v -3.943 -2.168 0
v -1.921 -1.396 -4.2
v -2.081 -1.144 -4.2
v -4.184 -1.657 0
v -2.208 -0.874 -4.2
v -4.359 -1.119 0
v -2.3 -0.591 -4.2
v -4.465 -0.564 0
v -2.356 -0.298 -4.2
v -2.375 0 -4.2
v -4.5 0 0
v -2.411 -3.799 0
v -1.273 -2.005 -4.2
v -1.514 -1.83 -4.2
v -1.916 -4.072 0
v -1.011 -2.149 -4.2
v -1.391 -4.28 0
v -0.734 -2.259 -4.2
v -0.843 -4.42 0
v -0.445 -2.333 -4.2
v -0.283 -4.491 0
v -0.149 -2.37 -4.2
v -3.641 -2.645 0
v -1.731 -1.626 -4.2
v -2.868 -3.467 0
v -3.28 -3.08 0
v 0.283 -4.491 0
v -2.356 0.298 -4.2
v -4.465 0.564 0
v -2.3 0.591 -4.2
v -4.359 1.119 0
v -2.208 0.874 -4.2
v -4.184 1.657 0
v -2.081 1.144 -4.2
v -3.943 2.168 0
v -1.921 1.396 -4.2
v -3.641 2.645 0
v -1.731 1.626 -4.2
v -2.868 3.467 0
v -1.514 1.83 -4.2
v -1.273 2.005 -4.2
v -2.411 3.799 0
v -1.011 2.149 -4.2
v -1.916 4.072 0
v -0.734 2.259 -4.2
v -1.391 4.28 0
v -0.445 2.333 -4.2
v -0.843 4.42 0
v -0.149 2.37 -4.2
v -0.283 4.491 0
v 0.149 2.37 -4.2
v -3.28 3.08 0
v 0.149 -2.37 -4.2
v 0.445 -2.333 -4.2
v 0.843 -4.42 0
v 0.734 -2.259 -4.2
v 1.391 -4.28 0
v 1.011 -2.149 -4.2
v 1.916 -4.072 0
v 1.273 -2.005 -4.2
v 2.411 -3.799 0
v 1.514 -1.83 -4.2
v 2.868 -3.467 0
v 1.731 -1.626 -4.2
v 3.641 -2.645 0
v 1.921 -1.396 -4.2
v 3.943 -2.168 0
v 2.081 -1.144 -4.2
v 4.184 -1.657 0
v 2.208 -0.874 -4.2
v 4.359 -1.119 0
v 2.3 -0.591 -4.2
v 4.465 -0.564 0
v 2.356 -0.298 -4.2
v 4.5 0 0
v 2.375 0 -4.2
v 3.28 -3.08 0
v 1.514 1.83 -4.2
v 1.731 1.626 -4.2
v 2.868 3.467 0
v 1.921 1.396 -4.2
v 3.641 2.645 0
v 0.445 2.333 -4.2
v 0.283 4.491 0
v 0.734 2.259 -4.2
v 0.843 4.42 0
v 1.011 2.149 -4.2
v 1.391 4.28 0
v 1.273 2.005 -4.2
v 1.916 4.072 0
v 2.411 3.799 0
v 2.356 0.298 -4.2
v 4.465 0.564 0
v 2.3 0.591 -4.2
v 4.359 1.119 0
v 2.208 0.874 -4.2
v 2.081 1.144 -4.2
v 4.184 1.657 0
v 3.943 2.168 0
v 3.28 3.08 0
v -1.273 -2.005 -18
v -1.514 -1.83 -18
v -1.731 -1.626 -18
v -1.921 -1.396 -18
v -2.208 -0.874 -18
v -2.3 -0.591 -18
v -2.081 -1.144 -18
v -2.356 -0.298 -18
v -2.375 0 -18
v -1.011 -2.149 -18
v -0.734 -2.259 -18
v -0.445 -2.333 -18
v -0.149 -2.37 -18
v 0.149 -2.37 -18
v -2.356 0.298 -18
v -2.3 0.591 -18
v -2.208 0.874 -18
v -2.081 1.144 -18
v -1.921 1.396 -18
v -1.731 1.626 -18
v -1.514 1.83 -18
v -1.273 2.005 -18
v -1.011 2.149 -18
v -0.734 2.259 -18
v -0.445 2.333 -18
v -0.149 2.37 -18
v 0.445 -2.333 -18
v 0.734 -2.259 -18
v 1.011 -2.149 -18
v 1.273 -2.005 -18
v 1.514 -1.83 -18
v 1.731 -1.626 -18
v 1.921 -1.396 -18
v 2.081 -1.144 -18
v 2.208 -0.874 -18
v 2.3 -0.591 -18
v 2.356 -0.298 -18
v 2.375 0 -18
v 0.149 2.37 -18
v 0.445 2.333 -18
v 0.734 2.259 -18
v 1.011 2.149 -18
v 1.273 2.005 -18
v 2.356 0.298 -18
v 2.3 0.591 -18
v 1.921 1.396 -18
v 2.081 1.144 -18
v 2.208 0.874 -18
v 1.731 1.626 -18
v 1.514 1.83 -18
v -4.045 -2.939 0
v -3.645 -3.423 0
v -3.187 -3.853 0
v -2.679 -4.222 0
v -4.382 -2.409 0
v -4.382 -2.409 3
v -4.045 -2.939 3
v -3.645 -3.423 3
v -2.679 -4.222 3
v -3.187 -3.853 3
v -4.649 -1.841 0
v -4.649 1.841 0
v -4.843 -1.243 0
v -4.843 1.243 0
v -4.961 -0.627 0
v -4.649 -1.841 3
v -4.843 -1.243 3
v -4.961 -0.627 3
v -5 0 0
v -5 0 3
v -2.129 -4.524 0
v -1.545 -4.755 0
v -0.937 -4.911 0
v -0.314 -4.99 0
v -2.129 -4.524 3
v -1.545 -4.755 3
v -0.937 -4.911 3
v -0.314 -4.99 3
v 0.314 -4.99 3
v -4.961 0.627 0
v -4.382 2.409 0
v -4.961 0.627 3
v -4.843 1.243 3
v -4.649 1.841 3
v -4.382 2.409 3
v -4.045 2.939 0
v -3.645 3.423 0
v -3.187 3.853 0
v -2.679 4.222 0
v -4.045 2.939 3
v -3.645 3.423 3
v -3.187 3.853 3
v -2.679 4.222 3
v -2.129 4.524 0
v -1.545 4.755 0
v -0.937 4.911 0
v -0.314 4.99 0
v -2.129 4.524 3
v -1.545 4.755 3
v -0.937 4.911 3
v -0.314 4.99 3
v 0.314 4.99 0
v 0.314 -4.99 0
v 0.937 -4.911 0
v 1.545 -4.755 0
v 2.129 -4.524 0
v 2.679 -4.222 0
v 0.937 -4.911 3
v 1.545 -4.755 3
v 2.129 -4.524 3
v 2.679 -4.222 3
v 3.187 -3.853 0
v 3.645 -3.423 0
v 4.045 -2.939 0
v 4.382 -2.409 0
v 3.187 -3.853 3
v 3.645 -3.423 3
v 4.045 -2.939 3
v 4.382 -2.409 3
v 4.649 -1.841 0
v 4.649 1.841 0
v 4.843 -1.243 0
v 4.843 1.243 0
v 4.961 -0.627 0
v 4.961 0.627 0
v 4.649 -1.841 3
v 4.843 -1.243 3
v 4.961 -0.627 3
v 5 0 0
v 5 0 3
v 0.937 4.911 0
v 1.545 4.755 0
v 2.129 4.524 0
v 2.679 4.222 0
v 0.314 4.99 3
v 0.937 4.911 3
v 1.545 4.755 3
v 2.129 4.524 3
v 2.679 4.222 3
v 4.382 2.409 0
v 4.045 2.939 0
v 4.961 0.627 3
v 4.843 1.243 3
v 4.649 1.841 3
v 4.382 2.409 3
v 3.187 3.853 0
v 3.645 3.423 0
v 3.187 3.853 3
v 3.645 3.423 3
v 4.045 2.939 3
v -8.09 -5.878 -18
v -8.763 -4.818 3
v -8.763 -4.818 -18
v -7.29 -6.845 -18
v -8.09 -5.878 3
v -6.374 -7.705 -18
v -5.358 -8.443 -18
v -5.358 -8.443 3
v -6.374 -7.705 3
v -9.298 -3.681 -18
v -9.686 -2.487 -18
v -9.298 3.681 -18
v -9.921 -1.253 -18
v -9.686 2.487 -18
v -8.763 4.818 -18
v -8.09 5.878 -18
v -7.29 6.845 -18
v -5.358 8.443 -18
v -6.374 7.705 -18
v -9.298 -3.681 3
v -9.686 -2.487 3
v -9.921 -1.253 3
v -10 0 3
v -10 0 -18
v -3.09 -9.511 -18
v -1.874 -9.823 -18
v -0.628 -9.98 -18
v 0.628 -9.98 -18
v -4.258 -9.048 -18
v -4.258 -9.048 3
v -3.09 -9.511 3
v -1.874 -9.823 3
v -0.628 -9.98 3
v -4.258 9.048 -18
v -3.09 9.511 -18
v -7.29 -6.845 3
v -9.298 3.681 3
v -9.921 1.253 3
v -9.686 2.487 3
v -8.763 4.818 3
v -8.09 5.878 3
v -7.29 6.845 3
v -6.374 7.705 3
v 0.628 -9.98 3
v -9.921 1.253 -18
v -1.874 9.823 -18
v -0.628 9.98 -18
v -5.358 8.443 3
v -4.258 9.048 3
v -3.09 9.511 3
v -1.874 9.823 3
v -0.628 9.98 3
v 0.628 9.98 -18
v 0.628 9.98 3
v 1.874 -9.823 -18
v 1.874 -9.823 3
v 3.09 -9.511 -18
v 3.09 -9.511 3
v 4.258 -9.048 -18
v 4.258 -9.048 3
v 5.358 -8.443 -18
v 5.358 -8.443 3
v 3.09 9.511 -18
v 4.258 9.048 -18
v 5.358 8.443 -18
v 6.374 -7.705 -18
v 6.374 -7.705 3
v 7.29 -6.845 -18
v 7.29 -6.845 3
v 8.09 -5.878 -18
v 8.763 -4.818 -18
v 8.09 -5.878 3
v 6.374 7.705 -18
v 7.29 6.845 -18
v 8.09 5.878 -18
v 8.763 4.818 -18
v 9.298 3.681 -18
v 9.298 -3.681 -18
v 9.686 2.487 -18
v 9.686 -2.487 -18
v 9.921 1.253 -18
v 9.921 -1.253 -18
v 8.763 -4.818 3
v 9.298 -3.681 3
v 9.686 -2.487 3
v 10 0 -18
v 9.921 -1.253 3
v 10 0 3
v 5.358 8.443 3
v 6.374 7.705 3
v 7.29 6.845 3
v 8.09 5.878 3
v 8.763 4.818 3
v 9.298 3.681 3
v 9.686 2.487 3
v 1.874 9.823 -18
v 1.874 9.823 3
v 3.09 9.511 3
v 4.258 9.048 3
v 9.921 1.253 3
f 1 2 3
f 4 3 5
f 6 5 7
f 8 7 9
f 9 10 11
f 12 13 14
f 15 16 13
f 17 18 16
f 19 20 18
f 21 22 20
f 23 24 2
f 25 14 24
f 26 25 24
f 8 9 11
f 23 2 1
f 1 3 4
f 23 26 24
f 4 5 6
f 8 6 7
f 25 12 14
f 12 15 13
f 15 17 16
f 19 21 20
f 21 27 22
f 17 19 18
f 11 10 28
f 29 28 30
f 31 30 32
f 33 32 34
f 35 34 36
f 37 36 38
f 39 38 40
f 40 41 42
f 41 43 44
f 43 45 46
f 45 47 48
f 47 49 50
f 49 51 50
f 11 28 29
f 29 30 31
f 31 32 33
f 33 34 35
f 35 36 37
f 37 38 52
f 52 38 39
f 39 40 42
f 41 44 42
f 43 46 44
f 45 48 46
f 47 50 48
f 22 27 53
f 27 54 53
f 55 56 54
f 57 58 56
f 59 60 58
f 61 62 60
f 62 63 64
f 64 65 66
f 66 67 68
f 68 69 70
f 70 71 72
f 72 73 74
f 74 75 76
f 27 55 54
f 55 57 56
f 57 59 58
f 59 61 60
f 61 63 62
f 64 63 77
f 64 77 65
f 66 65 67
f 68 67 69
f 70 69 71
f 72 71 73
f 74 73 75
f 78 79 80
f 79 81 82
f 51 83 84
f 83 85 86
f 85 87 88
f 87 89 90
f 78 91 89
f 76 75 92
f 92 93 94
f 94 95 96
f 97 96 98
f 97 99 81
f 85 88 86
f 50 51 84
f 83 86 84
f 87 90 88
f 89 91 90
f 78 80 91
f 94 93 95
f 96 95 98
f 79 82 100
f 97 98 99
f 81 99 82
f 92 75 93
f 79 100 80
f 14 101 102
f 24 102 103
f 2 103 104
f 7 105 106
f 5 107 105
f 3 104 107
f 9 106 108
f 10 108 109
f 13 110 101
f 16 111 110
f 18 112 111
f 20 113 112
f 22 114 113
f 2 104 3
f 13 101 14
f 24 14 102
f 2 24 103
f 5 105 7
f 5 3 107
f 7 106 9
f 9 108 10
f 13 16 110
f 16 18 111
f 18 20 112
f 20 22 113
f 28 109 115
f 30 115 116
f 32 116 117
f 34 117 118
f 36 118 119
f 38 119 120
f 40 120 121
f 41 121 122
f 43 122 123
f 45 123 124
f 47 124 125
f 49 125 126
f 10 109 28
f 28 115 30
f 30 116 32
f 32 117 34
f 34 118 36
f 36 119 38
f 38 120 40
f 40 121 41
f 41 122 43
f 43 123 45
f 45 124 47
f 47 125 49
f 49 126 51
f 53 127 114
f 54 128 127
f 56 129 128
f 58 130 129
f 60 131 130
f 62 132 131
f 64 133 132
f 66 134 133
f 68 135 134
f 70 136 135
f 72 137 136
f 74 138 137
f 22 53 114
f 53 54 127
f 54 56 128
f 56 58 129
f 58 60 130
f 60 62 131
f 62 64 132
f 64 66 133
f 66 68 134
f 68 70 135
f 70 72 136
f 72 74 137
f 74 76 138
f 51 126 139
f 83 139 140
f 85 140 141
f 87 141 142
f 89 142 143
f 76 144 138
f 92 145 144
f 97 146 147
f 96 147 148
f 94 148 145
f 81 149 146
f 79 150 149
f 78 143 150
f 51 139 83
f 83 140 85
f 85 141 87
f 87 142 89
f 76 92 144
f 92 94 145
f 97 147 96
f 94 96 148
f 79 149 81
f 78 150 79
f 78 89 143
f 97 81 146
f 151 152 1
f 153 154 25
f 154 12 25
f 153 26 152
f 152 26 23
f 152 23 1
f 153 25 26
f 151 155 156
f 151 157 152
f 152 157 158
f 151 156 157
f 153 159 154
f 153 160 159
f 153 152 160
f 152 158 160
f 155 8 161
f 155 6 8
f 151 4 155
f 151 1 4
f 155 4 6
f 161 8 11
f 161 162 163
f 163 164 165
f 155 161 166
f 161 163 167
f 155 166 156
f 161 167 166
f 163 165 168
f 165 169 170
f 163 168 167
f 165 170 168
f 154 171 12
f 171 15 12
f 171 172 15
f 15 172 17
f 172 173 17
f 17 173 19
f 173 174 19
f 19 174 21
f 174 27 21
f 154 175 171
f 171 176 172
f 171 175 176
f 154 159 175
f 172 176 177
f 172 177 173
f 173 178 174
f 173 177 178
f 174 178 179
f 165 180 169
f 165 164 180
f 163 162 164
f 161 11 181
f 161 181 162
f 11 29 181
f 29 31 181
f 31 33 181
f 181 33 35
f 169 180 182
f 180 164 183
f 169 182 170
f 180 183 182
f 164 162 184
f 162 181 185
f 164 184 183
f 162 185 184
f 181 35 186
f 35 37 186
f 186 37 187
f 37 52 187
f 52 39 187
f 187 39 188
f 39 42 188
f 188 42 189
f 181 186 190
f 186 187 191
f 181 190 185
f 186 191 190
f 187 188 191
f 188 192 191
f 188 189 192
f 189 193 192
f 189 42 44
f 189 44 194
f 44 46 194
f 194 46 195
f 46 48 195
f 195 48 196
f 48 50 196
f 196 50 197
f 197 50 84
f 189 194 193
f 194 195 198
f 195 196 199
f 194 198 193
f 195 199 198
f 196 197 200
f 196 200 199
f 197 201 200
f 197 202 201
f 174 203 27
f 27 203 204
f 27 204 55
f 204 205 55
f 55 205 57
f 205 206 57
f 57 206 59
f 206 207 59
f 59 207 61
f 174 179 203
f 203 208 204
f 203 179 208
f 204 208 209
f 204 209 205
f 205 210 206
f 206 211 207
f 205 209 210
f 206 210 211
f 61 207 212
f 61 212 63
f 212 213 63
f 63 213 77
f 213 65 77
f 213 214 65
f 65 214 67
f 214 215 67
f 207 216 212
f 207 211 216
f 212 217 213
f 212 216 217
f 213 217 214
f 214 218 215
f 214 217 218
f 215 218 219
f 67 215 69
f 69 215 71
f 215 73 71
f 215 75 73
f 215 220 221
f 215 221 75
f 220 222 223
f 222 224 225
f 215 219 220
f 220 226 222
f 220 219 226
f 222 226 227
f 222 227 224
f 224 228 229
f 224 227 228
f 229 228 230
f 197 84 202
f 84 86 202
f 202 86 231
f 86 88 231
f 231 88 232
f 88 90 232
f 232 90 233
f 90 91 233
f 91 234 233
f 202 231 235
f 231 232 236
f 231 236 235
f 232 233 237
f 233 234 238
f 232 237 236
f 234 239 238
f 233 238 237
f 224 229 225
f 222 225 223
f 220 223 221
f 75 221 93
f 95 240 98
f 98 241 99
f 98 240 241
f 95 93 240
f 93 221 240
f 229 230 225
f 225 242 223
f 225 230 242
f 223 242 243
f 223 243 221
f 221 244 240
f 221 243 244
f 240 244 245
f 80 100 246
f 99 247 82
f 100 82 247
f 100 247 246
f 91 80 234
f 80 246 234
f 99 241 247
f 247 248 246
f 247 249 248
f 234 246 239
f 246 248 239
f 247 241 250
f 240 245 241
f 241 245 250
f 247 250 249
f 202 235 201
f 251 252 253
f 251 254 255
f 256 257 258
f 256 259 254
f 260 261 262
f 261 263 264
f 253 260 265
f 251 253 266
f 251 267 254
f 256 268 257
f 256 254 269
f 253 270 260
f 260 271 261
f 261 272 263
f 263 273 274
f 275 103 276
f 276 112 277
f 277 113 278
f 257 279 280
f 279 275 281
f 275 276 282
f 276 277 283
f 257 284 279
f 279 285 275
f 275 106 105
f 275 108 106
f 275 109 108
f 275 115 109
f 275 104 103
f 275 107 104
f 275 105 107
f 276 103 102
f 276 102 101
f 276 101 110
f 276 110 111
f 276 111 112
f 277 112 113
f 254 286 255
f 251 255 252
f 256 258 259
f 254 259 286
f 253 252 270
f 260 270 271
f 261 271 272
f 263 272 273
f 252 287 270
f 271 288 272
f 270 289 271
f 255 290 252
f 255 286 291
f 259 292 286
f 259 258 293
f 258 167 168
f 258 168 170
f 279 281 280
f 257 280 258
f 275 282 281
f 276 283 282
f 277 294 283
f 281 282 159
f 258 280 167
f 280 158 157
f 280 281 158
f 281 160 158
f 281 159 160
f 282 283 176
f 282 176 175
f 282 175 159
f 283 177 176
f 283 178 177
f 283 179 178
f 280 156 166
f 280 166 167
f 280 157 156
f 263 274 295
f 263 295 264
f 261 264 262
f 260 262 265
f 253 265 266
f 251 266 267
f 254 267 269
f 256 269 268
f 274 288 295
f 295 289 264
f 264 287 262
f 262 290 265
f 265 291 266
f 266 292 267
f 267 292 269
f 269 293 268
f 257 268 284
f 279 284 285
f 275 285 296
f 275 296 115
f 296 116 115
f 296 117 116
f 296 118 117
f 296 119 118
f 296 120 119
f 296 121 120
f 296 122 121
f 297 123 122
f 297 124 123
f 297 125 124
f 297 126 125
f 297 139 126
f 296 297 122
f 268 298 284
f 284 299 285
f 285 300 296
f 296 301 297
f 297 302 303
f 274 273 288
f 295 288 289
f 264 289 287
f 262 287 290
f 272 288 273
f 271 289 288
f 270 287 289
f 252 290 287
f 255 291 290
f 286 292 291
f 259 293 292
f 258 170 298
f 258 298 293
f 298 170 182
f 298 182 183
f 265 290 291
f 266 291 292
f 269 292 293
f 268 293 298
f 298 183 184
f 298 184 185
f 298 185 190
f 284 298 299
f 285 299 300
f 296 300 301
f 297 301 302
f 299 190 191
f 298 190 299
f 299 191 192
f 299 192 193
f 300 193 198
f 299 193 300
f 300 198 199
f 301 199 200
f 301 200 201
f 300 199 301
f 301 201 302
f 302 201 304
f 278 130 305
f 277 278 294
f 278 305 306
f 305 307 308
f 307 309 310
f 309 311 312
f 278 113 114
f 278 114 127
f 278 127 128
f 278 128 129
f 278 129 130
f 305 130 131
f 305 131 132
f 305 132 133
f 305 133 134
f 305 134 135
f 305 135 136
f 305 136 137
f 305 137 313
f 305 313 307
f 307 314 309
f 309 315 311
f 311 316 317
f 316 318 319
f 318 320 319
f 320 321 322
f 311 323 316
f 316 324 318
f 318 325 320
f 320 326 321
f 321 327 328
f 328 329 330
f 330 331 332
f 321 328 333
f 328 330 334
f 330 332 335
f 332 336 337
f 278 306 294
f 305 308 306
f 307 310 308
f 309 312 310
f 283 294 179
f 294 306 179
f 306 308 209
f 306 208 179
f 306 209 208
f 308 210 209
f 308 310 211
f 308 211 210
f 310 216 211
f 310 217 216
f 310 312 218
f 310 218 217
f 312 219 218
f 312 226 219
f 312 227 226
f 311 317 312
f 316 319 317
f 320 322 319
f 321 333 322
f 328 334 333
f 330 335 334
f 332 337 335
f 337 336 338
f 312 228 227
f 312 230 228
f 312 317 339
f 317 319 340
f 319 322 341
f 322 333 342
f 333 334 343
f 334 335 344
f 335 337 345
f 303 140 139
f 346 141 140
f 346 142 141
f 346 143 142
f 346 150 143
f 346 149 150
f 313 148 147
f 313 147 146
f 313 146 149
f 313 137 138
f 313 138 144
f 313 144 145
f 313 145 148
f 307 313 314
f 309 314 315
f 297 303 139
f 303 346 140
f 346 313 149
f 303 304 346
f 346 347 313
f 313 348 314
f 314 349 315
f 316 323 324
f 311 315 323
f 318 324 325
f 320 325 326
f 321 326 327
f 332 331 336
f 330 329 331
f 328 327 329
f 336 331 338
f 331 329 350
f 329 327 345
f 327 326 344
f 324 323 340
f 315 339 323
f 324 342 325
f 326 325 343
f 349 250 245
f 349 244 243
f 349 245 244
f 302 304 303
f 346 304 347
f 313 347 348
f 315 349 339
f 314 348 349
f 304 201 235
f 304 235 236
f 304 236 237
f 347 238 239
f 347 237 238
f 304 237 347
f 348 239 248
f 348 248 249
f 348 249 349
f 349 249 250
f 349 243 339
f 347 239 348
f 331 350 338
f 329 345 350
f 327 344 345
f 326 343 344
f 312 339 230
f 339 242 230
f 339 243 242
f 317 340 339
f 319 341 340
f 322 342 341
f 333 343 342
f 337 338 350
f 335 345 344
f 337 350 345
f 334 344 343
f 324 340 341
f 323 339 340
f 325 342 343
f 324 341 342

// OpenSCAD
$fn = 50;


difference() {
	union() {
		translate(v = [0, 0, -18.0000000000]) {
			cylinder(h = 21, r = 10.0000000000);
		}
	}
	union() {
		translate(v = [0, 0, 0]) {
			rotate(a = [0, 0, 0]) {
				difference() {
					union() {
						translate(v = [0, 0, -21.0000000000]) {
							cylinder(h = 21, r = 2.2500000000);
						}
						translate(v = [0, 0, -4.2000000000]) {
							cylinder(h = 4.2000000000, r1 = 2.3750000000, r2 = 4.5000000000);
						}
						translate(v = [0, 0, -21.0000000000]) {
							cylinder(h = 21, r = 2.3750000000);
						}
						translate(v = [0, 0, -21.0000000000]) {
							cylinder(h = 21, r = 2.2500000000);
						}
					}
					union();
				}
			}
		}
		#cylinder(h = 3, r = 5.0000000000);
	}
}
